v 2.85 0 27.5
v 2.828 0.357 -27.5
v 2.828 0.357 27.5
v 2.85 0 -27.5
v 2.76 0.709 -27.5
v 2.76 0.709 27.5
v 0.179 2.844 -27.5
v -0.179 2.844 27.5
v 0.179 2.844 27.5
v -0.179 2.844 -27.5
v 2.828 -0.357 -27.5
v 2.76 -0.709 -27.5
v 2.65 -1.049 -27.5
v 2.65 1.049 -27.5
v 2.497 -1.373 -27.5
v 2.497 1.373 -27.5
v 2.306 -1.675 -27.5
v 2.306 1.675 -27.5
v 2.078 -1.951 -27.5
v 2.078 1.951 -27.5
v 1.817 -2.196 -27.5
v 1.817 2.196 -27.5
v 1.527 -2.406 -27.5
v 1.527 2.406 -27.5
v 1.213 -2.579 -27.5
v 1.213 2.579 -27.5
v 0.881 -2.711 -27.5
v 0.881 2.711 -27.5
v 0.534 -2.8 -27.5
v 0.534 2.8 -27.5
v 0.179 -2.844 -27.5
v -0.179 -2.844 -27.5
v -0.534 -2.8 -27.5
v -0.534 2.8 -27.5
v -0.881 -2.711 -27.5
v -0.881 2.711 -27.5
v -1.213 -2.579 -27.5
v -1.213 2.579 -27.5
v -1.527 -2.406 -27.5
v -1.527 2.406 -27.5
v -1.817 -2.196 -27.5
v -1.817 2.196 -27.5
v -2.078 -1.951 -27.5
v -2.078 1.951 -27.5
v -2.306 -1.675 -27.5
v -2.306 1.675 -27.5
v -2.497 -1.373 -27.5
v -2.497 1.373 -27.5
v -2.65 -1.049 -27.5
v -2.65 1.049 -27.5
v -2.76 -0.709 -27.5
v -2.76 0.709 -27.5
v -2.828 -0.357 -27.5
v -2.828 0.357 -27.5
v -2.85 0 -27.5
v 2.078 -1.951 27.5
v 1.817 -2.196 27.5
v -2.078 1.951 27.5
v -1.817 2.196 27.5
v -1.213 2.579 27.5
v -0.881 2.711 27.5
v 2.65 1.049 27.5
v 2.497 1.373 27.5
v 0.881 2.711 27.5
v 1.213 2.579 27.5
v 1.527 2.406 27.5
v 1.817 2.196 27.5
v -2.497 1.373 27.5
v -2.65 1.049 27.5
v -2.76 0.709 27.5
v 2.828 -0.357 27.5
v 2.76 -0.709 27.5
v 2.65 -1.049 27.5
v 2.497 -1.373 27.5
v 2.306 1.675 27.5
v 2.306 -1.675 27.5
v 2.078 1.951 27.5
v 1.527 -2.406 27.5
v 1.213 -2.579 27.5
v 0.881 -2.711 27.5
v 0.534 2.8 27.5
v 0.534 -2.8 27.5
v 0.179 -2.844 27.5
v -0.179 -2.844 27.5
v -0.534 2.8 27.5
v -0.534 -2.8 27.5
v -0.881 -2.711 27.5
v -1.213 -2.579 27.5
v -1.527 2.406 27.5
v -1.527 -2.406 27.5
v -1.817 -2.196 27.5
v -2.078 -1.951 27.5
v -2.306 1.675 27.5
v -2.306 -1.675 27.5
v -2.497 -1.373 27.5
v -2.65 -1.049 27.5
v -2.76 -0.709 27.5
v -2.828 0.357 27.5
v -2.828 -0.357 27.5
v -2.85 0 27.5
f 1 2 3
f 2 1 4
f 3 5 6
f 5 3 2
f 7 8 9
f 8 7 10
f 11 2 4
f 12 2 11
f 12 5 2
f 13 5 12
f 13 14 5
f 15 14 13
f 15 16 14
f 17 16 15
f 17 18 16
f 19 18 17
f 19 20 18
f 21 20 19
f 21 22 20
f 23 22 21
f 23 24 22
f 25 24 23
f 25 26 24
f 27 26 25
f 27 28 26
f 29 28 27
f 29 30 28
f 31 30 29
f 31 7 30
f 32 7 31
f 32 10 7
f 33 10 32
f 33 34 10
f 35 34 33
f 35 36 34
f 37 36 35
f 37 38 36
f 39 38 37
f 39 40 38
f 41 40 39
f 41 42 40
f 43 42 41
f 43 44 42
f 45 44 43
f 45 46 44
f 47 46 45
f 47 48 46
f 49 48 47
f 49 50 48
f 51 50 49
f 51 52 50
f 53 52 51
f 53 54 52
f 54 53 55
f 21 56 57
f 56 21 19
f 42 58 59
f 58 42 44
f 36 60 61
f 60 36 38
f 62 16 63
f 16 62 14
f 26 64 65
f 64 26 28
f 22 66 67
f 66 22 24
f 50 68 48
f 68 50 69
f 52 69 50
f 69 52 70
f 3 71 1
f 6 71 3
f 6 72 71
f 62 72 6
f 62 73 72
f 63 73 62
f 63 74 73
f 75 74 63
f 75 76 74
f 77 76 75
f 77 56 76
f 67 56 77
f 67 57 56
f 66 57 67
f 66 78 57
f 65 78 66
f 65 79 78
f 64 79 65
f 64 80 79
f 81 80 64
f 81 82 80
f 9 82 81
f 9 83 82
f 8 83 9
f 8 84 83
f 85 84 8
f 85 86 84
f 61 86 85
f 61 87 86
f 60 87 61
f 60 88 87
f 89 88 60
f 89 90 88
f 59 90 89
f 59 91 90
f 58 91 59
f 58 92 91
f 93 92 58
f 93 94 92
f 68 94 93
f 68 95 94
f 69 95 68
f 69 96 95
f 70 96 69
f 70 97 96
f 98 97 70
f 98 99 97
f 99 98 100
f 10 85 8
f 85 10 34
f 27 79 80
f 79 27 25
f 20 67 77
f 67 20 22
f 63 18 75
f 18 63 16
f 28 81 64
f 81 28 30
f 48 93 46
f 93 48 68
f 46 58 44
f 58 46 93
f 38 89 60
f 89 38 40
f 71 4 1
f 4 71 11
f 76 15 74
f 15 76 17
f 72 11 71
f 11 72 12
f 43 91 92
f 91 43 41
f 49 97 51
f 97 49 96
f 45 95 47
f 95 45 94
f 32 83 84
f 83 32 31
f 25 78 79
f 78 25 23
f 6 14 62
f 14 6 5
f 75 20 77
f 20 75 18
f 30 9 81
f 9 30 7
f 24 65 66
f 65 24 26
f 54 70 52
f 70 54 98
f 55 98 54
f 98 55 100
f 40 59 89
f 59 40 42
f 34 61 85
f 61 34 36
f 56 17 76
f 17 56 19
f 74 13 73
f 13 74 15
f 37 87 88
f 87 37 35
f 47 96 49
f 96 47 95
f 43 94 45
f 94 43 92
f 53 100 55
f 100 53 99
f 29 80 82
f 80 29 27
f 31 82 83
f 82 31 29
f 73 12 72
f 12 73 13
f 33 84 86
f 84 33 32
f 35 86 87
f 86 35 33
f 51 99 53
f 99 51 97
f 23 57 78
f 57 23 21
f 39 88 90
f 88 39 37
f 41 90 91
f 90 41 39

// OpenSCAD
$fn = 50;


difference() {
	union() {
		translate(v = [0, 0, -27.5000000000]) {
			cylinder(h = 55, r = 2.8500000000);
		}
	}
	union() {
		translate(v = [0, 0, -100.0000000000]) {
			cylinder(h = 200, r = 0);
		}
	}
}
